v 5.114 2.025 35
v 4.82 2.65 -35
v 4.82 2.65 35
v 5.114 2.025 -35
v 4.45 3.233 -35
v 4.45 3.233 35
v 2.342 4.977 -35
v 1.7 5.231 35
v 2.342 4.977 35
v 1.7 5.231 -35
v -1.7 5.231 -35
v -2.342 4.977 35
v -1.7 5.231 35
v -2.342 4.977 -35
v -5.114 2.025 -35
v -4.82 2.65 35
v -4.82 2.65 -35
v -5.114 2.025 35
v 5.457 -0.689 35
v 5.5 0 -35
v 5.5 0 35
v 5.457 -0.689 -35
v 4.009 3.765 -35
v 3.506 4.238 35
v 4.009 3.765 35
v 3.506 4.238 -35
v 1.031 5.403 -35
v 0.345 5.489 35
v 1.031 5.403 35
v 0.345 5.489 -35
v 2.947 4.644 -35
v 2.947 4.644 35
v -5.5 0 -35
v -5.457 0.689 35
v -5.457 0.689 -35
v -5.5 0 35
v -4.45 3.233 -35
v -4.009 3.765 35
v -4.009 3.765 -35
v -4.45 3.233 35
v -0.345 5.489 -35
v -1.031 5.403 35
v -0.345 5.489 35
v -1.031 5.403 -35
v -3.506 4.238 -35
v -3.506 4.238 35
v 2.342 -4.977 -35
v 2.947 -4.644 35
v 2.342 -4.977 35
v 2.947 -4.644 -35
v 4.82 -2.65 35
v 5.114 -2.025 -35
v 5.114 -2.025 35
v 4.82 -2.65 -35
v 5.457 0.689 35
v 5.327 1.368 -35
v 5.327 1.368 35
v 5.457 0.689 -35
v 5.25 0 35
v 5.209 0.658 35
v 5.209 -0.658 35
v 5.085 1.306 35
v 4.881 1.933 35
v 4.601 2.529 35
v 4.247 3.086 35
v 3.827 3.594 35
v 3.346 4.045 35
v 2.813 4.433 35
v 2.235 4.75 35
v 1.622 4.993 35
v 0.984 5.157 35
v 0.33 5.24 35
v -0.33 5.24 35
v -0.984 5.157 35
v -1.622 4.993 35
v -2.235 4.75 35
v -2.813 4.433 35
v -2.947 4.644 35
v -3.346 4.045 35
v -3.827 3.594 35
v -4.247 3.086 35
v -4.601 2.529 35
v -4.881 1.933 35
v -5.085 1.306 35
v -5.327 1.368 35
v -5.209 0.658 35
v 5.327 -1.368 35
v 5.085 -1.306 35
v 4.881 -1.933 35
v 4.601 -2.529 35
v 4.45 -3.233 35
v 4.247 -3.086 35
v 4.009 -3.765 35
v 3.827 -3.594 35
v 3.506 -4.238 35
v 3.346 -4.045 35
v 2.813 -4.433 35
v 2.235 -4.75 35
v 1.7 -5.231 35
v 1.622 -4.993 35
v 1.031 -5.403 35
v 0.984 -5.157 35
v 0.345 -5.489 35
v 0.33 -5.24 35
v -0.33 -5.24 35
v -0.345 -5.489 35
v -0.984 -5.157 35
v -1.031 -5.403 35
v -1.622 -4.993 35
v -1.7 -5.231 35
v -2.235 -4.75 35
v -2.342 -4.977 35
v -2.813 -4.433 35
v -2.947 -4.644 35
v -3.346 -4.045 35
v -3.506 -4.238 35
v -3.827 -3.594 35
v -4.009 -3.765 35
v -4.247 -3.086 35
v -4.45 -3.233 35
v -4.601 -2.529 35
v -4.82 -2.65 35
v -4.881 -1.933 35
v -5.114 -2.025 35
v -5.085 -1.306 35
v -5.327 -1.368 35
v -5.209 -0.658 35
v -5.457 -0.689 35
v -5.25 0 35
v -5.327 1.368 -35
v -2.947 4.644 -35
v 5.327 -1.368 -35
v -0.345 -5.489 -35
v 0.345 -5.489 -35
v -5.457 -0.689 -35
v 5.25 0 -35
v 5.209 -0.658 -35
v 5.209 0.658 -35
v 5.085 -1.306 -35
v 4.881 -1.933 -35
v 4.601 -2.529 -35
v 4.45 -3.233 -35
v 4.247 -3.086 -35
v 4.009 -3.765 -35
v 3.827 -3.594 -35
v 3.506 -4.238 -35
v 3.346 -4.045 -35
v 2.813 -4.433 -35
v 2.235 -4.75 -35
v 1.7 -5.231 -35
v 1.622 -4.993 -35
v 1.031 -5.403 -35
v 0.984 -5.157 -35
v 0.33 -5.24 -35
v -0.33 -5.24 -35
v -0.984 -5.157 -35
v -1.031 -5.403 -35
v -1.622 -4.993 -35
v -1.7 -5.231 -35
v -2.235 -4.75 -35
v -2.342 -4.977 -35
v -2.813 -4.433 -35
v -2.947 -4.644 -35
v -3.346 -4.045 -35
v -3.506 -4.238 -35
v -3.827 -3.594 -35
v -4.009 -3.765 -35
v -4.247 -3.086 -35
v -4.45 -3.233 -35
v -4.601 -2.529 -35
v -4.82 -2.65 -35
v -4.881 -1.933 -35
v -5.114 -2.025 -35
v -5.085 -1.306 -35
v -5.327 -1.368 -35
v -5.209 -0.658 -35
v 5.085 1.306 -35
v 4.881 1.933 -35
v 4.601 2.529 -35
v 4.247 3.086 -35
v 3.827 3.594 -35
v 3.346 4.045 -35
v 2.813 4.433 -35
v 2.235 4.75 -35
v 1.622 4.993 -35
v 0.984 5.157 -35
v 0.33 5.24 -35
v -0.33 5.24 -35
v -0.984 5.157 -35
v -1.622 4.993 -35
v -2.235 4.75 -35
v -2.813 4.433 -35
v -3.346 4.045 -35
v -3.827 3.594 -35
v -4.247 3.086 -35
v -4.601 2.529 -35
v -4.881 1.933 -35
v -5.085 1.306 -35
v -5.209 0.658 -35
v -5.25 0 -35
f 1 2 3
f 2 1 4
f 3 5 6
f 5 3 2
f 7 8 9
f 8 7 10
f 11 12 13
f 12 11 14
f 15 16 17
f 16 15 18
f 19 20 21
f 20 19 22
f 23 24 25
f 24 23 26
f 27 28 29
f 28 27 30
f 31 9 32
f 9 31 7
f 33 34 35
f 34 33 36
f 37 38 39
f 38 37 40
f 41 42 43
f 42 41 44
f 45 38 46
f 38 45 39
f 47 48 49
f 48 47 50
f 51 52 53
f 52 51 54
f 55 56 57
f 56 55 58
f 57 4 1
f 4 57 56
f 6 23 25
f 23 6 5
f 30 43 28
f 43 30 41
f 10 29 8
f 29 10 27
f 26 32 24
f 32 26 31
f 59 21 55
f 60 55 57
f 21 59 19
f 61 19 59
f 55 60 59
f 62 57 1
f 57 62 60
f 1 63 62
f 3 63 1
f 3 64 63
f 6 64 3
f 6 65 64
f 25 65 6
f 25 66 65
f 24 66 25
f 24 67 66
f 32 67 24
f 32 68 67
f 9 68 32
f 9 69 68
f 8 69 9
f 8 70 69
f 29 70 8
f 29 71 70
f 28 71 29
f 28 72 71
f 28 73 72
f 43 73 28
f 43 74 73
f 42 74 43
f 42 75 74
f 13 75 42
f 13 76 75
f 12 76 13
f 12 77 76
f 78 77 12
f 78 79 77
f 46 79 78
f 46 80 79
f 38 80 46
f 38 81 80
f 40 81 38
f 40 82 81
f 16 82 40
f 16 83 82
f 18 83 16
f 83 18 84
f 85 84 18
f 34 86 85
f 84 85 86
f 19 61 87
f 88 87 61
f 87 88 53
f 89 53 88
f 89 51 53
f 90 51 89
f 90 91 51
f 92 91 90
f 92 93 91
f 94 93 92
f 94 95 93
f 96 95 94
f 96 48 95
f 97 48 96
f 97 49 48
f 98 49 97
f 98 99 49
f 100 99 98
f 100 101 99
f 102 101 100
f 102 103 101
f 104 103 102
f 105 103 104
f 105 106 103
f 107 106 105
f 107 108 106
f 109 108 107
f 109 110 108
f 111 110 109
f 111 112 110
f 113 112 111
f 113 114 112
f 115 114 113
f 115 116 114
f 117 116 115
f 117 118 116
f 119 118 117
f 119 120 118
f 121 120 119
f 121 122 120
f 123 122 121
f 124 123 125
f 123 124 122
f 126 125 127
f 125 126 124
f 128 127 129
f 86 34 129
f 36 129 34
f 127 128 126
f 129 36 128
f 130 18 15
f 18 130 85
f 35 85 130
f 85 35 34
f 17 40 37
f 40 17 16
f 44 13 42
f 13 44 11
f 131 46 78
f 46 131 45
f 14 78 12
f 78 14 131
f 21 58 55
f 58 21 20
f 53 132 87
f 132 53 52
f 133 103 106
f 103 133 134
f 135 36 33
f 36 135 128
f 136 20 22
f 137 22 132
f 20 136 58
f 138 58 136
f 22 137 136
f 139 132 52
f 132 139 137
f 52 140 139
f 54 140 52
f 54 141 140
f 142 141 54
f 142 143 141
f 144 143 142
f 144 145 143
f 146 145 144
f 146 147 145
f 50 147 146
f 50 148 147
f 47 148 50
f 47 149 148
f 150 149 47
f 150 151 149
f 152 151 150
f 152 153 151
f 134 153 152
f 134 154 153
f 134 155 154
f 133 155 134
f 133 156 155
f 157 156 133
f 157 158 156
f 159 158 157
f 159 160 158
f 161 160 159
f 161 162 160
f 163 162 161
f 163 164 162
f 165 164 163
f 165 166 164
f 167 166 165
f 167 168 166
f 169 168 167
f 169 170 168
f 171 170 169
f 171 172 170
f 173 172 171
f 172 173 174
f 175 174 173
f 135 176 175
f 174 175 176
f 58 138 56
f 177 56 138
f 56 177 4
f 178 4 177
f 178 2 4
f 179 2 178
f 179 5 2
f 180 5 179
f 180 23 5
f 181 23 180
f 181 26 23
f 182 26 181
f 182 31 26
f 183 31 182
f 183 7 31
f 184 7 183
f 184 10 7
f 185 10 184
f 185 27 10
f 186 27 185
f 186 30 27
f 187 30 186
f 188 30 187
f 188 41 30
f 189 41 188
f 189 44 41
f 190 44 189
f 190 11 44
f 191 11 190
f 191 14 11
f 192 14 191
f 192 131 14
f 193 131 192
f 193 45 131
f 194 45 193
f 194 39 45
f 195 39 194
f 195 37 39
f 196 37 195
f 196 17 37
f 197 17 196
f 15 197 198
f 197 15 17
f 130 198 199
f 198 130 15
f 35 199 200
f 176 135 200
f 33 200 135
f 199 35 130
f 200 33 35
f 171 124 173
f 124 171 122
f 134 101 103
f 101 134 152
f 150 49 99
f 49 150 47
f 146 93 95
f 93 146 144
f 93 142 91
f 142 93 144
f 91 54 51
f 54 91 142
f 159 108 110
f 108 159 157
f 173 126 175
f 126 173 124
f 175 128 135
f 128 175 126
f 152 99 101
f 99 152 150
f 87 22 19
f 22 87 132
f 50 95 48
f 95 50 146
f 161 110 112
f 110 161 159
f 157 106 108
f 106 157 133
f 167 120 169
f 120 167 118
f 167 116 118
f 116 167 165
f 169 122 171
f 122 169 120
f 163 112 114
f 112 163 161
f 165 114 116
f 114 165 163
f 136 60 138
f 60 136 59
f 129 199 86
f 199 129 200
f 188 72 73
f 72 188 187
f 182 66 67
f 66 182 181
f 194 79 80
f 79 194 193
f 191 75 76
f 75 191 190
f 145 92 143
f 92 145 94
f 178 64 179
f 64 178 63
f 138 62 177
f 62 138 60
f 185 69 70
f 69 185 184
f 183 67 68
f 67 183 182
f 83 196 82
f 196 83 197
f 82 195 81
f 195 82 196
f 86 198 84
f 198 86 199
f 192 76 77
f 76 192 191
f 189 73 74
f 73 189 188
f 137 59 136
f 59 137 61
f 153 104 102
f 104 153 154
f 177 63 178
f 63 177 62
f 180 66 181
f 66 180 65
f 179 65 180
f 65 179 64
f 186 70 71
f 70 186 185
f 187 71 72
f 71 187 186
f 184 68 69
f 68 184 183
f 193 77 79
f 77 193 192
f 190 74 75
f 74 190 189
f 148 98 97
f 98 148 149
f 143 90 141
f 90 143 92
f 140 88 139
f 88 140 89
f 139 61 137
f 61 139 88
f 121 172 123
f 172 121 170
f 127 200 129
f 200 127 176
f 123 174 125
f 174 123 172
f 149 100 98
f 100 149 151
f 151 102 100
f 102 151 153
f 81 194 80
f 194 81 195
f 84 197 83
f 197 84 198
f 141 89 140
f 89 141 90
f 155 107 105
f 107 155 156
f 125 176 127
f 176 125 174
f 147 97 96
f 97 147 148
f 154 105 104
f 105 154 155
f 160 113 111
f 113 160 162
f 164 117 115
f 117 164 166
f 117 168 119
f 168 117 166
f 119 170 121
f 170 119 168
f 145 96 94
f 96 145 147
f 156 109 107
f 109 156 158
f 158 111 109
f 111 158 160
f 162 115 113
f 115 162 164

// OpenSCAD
$fn = 50;


difference() {
	union() {
		translate(v = [0, 0, -35.0000000000]) {
			cylinder(h = 70, r = 5.5000000000);
		}
	}
	union() {
		translate(v = [0, 0, -100.0000000000]) {
			cylinder(h = 200, r = 5.2500000000);
		}
	}
}
